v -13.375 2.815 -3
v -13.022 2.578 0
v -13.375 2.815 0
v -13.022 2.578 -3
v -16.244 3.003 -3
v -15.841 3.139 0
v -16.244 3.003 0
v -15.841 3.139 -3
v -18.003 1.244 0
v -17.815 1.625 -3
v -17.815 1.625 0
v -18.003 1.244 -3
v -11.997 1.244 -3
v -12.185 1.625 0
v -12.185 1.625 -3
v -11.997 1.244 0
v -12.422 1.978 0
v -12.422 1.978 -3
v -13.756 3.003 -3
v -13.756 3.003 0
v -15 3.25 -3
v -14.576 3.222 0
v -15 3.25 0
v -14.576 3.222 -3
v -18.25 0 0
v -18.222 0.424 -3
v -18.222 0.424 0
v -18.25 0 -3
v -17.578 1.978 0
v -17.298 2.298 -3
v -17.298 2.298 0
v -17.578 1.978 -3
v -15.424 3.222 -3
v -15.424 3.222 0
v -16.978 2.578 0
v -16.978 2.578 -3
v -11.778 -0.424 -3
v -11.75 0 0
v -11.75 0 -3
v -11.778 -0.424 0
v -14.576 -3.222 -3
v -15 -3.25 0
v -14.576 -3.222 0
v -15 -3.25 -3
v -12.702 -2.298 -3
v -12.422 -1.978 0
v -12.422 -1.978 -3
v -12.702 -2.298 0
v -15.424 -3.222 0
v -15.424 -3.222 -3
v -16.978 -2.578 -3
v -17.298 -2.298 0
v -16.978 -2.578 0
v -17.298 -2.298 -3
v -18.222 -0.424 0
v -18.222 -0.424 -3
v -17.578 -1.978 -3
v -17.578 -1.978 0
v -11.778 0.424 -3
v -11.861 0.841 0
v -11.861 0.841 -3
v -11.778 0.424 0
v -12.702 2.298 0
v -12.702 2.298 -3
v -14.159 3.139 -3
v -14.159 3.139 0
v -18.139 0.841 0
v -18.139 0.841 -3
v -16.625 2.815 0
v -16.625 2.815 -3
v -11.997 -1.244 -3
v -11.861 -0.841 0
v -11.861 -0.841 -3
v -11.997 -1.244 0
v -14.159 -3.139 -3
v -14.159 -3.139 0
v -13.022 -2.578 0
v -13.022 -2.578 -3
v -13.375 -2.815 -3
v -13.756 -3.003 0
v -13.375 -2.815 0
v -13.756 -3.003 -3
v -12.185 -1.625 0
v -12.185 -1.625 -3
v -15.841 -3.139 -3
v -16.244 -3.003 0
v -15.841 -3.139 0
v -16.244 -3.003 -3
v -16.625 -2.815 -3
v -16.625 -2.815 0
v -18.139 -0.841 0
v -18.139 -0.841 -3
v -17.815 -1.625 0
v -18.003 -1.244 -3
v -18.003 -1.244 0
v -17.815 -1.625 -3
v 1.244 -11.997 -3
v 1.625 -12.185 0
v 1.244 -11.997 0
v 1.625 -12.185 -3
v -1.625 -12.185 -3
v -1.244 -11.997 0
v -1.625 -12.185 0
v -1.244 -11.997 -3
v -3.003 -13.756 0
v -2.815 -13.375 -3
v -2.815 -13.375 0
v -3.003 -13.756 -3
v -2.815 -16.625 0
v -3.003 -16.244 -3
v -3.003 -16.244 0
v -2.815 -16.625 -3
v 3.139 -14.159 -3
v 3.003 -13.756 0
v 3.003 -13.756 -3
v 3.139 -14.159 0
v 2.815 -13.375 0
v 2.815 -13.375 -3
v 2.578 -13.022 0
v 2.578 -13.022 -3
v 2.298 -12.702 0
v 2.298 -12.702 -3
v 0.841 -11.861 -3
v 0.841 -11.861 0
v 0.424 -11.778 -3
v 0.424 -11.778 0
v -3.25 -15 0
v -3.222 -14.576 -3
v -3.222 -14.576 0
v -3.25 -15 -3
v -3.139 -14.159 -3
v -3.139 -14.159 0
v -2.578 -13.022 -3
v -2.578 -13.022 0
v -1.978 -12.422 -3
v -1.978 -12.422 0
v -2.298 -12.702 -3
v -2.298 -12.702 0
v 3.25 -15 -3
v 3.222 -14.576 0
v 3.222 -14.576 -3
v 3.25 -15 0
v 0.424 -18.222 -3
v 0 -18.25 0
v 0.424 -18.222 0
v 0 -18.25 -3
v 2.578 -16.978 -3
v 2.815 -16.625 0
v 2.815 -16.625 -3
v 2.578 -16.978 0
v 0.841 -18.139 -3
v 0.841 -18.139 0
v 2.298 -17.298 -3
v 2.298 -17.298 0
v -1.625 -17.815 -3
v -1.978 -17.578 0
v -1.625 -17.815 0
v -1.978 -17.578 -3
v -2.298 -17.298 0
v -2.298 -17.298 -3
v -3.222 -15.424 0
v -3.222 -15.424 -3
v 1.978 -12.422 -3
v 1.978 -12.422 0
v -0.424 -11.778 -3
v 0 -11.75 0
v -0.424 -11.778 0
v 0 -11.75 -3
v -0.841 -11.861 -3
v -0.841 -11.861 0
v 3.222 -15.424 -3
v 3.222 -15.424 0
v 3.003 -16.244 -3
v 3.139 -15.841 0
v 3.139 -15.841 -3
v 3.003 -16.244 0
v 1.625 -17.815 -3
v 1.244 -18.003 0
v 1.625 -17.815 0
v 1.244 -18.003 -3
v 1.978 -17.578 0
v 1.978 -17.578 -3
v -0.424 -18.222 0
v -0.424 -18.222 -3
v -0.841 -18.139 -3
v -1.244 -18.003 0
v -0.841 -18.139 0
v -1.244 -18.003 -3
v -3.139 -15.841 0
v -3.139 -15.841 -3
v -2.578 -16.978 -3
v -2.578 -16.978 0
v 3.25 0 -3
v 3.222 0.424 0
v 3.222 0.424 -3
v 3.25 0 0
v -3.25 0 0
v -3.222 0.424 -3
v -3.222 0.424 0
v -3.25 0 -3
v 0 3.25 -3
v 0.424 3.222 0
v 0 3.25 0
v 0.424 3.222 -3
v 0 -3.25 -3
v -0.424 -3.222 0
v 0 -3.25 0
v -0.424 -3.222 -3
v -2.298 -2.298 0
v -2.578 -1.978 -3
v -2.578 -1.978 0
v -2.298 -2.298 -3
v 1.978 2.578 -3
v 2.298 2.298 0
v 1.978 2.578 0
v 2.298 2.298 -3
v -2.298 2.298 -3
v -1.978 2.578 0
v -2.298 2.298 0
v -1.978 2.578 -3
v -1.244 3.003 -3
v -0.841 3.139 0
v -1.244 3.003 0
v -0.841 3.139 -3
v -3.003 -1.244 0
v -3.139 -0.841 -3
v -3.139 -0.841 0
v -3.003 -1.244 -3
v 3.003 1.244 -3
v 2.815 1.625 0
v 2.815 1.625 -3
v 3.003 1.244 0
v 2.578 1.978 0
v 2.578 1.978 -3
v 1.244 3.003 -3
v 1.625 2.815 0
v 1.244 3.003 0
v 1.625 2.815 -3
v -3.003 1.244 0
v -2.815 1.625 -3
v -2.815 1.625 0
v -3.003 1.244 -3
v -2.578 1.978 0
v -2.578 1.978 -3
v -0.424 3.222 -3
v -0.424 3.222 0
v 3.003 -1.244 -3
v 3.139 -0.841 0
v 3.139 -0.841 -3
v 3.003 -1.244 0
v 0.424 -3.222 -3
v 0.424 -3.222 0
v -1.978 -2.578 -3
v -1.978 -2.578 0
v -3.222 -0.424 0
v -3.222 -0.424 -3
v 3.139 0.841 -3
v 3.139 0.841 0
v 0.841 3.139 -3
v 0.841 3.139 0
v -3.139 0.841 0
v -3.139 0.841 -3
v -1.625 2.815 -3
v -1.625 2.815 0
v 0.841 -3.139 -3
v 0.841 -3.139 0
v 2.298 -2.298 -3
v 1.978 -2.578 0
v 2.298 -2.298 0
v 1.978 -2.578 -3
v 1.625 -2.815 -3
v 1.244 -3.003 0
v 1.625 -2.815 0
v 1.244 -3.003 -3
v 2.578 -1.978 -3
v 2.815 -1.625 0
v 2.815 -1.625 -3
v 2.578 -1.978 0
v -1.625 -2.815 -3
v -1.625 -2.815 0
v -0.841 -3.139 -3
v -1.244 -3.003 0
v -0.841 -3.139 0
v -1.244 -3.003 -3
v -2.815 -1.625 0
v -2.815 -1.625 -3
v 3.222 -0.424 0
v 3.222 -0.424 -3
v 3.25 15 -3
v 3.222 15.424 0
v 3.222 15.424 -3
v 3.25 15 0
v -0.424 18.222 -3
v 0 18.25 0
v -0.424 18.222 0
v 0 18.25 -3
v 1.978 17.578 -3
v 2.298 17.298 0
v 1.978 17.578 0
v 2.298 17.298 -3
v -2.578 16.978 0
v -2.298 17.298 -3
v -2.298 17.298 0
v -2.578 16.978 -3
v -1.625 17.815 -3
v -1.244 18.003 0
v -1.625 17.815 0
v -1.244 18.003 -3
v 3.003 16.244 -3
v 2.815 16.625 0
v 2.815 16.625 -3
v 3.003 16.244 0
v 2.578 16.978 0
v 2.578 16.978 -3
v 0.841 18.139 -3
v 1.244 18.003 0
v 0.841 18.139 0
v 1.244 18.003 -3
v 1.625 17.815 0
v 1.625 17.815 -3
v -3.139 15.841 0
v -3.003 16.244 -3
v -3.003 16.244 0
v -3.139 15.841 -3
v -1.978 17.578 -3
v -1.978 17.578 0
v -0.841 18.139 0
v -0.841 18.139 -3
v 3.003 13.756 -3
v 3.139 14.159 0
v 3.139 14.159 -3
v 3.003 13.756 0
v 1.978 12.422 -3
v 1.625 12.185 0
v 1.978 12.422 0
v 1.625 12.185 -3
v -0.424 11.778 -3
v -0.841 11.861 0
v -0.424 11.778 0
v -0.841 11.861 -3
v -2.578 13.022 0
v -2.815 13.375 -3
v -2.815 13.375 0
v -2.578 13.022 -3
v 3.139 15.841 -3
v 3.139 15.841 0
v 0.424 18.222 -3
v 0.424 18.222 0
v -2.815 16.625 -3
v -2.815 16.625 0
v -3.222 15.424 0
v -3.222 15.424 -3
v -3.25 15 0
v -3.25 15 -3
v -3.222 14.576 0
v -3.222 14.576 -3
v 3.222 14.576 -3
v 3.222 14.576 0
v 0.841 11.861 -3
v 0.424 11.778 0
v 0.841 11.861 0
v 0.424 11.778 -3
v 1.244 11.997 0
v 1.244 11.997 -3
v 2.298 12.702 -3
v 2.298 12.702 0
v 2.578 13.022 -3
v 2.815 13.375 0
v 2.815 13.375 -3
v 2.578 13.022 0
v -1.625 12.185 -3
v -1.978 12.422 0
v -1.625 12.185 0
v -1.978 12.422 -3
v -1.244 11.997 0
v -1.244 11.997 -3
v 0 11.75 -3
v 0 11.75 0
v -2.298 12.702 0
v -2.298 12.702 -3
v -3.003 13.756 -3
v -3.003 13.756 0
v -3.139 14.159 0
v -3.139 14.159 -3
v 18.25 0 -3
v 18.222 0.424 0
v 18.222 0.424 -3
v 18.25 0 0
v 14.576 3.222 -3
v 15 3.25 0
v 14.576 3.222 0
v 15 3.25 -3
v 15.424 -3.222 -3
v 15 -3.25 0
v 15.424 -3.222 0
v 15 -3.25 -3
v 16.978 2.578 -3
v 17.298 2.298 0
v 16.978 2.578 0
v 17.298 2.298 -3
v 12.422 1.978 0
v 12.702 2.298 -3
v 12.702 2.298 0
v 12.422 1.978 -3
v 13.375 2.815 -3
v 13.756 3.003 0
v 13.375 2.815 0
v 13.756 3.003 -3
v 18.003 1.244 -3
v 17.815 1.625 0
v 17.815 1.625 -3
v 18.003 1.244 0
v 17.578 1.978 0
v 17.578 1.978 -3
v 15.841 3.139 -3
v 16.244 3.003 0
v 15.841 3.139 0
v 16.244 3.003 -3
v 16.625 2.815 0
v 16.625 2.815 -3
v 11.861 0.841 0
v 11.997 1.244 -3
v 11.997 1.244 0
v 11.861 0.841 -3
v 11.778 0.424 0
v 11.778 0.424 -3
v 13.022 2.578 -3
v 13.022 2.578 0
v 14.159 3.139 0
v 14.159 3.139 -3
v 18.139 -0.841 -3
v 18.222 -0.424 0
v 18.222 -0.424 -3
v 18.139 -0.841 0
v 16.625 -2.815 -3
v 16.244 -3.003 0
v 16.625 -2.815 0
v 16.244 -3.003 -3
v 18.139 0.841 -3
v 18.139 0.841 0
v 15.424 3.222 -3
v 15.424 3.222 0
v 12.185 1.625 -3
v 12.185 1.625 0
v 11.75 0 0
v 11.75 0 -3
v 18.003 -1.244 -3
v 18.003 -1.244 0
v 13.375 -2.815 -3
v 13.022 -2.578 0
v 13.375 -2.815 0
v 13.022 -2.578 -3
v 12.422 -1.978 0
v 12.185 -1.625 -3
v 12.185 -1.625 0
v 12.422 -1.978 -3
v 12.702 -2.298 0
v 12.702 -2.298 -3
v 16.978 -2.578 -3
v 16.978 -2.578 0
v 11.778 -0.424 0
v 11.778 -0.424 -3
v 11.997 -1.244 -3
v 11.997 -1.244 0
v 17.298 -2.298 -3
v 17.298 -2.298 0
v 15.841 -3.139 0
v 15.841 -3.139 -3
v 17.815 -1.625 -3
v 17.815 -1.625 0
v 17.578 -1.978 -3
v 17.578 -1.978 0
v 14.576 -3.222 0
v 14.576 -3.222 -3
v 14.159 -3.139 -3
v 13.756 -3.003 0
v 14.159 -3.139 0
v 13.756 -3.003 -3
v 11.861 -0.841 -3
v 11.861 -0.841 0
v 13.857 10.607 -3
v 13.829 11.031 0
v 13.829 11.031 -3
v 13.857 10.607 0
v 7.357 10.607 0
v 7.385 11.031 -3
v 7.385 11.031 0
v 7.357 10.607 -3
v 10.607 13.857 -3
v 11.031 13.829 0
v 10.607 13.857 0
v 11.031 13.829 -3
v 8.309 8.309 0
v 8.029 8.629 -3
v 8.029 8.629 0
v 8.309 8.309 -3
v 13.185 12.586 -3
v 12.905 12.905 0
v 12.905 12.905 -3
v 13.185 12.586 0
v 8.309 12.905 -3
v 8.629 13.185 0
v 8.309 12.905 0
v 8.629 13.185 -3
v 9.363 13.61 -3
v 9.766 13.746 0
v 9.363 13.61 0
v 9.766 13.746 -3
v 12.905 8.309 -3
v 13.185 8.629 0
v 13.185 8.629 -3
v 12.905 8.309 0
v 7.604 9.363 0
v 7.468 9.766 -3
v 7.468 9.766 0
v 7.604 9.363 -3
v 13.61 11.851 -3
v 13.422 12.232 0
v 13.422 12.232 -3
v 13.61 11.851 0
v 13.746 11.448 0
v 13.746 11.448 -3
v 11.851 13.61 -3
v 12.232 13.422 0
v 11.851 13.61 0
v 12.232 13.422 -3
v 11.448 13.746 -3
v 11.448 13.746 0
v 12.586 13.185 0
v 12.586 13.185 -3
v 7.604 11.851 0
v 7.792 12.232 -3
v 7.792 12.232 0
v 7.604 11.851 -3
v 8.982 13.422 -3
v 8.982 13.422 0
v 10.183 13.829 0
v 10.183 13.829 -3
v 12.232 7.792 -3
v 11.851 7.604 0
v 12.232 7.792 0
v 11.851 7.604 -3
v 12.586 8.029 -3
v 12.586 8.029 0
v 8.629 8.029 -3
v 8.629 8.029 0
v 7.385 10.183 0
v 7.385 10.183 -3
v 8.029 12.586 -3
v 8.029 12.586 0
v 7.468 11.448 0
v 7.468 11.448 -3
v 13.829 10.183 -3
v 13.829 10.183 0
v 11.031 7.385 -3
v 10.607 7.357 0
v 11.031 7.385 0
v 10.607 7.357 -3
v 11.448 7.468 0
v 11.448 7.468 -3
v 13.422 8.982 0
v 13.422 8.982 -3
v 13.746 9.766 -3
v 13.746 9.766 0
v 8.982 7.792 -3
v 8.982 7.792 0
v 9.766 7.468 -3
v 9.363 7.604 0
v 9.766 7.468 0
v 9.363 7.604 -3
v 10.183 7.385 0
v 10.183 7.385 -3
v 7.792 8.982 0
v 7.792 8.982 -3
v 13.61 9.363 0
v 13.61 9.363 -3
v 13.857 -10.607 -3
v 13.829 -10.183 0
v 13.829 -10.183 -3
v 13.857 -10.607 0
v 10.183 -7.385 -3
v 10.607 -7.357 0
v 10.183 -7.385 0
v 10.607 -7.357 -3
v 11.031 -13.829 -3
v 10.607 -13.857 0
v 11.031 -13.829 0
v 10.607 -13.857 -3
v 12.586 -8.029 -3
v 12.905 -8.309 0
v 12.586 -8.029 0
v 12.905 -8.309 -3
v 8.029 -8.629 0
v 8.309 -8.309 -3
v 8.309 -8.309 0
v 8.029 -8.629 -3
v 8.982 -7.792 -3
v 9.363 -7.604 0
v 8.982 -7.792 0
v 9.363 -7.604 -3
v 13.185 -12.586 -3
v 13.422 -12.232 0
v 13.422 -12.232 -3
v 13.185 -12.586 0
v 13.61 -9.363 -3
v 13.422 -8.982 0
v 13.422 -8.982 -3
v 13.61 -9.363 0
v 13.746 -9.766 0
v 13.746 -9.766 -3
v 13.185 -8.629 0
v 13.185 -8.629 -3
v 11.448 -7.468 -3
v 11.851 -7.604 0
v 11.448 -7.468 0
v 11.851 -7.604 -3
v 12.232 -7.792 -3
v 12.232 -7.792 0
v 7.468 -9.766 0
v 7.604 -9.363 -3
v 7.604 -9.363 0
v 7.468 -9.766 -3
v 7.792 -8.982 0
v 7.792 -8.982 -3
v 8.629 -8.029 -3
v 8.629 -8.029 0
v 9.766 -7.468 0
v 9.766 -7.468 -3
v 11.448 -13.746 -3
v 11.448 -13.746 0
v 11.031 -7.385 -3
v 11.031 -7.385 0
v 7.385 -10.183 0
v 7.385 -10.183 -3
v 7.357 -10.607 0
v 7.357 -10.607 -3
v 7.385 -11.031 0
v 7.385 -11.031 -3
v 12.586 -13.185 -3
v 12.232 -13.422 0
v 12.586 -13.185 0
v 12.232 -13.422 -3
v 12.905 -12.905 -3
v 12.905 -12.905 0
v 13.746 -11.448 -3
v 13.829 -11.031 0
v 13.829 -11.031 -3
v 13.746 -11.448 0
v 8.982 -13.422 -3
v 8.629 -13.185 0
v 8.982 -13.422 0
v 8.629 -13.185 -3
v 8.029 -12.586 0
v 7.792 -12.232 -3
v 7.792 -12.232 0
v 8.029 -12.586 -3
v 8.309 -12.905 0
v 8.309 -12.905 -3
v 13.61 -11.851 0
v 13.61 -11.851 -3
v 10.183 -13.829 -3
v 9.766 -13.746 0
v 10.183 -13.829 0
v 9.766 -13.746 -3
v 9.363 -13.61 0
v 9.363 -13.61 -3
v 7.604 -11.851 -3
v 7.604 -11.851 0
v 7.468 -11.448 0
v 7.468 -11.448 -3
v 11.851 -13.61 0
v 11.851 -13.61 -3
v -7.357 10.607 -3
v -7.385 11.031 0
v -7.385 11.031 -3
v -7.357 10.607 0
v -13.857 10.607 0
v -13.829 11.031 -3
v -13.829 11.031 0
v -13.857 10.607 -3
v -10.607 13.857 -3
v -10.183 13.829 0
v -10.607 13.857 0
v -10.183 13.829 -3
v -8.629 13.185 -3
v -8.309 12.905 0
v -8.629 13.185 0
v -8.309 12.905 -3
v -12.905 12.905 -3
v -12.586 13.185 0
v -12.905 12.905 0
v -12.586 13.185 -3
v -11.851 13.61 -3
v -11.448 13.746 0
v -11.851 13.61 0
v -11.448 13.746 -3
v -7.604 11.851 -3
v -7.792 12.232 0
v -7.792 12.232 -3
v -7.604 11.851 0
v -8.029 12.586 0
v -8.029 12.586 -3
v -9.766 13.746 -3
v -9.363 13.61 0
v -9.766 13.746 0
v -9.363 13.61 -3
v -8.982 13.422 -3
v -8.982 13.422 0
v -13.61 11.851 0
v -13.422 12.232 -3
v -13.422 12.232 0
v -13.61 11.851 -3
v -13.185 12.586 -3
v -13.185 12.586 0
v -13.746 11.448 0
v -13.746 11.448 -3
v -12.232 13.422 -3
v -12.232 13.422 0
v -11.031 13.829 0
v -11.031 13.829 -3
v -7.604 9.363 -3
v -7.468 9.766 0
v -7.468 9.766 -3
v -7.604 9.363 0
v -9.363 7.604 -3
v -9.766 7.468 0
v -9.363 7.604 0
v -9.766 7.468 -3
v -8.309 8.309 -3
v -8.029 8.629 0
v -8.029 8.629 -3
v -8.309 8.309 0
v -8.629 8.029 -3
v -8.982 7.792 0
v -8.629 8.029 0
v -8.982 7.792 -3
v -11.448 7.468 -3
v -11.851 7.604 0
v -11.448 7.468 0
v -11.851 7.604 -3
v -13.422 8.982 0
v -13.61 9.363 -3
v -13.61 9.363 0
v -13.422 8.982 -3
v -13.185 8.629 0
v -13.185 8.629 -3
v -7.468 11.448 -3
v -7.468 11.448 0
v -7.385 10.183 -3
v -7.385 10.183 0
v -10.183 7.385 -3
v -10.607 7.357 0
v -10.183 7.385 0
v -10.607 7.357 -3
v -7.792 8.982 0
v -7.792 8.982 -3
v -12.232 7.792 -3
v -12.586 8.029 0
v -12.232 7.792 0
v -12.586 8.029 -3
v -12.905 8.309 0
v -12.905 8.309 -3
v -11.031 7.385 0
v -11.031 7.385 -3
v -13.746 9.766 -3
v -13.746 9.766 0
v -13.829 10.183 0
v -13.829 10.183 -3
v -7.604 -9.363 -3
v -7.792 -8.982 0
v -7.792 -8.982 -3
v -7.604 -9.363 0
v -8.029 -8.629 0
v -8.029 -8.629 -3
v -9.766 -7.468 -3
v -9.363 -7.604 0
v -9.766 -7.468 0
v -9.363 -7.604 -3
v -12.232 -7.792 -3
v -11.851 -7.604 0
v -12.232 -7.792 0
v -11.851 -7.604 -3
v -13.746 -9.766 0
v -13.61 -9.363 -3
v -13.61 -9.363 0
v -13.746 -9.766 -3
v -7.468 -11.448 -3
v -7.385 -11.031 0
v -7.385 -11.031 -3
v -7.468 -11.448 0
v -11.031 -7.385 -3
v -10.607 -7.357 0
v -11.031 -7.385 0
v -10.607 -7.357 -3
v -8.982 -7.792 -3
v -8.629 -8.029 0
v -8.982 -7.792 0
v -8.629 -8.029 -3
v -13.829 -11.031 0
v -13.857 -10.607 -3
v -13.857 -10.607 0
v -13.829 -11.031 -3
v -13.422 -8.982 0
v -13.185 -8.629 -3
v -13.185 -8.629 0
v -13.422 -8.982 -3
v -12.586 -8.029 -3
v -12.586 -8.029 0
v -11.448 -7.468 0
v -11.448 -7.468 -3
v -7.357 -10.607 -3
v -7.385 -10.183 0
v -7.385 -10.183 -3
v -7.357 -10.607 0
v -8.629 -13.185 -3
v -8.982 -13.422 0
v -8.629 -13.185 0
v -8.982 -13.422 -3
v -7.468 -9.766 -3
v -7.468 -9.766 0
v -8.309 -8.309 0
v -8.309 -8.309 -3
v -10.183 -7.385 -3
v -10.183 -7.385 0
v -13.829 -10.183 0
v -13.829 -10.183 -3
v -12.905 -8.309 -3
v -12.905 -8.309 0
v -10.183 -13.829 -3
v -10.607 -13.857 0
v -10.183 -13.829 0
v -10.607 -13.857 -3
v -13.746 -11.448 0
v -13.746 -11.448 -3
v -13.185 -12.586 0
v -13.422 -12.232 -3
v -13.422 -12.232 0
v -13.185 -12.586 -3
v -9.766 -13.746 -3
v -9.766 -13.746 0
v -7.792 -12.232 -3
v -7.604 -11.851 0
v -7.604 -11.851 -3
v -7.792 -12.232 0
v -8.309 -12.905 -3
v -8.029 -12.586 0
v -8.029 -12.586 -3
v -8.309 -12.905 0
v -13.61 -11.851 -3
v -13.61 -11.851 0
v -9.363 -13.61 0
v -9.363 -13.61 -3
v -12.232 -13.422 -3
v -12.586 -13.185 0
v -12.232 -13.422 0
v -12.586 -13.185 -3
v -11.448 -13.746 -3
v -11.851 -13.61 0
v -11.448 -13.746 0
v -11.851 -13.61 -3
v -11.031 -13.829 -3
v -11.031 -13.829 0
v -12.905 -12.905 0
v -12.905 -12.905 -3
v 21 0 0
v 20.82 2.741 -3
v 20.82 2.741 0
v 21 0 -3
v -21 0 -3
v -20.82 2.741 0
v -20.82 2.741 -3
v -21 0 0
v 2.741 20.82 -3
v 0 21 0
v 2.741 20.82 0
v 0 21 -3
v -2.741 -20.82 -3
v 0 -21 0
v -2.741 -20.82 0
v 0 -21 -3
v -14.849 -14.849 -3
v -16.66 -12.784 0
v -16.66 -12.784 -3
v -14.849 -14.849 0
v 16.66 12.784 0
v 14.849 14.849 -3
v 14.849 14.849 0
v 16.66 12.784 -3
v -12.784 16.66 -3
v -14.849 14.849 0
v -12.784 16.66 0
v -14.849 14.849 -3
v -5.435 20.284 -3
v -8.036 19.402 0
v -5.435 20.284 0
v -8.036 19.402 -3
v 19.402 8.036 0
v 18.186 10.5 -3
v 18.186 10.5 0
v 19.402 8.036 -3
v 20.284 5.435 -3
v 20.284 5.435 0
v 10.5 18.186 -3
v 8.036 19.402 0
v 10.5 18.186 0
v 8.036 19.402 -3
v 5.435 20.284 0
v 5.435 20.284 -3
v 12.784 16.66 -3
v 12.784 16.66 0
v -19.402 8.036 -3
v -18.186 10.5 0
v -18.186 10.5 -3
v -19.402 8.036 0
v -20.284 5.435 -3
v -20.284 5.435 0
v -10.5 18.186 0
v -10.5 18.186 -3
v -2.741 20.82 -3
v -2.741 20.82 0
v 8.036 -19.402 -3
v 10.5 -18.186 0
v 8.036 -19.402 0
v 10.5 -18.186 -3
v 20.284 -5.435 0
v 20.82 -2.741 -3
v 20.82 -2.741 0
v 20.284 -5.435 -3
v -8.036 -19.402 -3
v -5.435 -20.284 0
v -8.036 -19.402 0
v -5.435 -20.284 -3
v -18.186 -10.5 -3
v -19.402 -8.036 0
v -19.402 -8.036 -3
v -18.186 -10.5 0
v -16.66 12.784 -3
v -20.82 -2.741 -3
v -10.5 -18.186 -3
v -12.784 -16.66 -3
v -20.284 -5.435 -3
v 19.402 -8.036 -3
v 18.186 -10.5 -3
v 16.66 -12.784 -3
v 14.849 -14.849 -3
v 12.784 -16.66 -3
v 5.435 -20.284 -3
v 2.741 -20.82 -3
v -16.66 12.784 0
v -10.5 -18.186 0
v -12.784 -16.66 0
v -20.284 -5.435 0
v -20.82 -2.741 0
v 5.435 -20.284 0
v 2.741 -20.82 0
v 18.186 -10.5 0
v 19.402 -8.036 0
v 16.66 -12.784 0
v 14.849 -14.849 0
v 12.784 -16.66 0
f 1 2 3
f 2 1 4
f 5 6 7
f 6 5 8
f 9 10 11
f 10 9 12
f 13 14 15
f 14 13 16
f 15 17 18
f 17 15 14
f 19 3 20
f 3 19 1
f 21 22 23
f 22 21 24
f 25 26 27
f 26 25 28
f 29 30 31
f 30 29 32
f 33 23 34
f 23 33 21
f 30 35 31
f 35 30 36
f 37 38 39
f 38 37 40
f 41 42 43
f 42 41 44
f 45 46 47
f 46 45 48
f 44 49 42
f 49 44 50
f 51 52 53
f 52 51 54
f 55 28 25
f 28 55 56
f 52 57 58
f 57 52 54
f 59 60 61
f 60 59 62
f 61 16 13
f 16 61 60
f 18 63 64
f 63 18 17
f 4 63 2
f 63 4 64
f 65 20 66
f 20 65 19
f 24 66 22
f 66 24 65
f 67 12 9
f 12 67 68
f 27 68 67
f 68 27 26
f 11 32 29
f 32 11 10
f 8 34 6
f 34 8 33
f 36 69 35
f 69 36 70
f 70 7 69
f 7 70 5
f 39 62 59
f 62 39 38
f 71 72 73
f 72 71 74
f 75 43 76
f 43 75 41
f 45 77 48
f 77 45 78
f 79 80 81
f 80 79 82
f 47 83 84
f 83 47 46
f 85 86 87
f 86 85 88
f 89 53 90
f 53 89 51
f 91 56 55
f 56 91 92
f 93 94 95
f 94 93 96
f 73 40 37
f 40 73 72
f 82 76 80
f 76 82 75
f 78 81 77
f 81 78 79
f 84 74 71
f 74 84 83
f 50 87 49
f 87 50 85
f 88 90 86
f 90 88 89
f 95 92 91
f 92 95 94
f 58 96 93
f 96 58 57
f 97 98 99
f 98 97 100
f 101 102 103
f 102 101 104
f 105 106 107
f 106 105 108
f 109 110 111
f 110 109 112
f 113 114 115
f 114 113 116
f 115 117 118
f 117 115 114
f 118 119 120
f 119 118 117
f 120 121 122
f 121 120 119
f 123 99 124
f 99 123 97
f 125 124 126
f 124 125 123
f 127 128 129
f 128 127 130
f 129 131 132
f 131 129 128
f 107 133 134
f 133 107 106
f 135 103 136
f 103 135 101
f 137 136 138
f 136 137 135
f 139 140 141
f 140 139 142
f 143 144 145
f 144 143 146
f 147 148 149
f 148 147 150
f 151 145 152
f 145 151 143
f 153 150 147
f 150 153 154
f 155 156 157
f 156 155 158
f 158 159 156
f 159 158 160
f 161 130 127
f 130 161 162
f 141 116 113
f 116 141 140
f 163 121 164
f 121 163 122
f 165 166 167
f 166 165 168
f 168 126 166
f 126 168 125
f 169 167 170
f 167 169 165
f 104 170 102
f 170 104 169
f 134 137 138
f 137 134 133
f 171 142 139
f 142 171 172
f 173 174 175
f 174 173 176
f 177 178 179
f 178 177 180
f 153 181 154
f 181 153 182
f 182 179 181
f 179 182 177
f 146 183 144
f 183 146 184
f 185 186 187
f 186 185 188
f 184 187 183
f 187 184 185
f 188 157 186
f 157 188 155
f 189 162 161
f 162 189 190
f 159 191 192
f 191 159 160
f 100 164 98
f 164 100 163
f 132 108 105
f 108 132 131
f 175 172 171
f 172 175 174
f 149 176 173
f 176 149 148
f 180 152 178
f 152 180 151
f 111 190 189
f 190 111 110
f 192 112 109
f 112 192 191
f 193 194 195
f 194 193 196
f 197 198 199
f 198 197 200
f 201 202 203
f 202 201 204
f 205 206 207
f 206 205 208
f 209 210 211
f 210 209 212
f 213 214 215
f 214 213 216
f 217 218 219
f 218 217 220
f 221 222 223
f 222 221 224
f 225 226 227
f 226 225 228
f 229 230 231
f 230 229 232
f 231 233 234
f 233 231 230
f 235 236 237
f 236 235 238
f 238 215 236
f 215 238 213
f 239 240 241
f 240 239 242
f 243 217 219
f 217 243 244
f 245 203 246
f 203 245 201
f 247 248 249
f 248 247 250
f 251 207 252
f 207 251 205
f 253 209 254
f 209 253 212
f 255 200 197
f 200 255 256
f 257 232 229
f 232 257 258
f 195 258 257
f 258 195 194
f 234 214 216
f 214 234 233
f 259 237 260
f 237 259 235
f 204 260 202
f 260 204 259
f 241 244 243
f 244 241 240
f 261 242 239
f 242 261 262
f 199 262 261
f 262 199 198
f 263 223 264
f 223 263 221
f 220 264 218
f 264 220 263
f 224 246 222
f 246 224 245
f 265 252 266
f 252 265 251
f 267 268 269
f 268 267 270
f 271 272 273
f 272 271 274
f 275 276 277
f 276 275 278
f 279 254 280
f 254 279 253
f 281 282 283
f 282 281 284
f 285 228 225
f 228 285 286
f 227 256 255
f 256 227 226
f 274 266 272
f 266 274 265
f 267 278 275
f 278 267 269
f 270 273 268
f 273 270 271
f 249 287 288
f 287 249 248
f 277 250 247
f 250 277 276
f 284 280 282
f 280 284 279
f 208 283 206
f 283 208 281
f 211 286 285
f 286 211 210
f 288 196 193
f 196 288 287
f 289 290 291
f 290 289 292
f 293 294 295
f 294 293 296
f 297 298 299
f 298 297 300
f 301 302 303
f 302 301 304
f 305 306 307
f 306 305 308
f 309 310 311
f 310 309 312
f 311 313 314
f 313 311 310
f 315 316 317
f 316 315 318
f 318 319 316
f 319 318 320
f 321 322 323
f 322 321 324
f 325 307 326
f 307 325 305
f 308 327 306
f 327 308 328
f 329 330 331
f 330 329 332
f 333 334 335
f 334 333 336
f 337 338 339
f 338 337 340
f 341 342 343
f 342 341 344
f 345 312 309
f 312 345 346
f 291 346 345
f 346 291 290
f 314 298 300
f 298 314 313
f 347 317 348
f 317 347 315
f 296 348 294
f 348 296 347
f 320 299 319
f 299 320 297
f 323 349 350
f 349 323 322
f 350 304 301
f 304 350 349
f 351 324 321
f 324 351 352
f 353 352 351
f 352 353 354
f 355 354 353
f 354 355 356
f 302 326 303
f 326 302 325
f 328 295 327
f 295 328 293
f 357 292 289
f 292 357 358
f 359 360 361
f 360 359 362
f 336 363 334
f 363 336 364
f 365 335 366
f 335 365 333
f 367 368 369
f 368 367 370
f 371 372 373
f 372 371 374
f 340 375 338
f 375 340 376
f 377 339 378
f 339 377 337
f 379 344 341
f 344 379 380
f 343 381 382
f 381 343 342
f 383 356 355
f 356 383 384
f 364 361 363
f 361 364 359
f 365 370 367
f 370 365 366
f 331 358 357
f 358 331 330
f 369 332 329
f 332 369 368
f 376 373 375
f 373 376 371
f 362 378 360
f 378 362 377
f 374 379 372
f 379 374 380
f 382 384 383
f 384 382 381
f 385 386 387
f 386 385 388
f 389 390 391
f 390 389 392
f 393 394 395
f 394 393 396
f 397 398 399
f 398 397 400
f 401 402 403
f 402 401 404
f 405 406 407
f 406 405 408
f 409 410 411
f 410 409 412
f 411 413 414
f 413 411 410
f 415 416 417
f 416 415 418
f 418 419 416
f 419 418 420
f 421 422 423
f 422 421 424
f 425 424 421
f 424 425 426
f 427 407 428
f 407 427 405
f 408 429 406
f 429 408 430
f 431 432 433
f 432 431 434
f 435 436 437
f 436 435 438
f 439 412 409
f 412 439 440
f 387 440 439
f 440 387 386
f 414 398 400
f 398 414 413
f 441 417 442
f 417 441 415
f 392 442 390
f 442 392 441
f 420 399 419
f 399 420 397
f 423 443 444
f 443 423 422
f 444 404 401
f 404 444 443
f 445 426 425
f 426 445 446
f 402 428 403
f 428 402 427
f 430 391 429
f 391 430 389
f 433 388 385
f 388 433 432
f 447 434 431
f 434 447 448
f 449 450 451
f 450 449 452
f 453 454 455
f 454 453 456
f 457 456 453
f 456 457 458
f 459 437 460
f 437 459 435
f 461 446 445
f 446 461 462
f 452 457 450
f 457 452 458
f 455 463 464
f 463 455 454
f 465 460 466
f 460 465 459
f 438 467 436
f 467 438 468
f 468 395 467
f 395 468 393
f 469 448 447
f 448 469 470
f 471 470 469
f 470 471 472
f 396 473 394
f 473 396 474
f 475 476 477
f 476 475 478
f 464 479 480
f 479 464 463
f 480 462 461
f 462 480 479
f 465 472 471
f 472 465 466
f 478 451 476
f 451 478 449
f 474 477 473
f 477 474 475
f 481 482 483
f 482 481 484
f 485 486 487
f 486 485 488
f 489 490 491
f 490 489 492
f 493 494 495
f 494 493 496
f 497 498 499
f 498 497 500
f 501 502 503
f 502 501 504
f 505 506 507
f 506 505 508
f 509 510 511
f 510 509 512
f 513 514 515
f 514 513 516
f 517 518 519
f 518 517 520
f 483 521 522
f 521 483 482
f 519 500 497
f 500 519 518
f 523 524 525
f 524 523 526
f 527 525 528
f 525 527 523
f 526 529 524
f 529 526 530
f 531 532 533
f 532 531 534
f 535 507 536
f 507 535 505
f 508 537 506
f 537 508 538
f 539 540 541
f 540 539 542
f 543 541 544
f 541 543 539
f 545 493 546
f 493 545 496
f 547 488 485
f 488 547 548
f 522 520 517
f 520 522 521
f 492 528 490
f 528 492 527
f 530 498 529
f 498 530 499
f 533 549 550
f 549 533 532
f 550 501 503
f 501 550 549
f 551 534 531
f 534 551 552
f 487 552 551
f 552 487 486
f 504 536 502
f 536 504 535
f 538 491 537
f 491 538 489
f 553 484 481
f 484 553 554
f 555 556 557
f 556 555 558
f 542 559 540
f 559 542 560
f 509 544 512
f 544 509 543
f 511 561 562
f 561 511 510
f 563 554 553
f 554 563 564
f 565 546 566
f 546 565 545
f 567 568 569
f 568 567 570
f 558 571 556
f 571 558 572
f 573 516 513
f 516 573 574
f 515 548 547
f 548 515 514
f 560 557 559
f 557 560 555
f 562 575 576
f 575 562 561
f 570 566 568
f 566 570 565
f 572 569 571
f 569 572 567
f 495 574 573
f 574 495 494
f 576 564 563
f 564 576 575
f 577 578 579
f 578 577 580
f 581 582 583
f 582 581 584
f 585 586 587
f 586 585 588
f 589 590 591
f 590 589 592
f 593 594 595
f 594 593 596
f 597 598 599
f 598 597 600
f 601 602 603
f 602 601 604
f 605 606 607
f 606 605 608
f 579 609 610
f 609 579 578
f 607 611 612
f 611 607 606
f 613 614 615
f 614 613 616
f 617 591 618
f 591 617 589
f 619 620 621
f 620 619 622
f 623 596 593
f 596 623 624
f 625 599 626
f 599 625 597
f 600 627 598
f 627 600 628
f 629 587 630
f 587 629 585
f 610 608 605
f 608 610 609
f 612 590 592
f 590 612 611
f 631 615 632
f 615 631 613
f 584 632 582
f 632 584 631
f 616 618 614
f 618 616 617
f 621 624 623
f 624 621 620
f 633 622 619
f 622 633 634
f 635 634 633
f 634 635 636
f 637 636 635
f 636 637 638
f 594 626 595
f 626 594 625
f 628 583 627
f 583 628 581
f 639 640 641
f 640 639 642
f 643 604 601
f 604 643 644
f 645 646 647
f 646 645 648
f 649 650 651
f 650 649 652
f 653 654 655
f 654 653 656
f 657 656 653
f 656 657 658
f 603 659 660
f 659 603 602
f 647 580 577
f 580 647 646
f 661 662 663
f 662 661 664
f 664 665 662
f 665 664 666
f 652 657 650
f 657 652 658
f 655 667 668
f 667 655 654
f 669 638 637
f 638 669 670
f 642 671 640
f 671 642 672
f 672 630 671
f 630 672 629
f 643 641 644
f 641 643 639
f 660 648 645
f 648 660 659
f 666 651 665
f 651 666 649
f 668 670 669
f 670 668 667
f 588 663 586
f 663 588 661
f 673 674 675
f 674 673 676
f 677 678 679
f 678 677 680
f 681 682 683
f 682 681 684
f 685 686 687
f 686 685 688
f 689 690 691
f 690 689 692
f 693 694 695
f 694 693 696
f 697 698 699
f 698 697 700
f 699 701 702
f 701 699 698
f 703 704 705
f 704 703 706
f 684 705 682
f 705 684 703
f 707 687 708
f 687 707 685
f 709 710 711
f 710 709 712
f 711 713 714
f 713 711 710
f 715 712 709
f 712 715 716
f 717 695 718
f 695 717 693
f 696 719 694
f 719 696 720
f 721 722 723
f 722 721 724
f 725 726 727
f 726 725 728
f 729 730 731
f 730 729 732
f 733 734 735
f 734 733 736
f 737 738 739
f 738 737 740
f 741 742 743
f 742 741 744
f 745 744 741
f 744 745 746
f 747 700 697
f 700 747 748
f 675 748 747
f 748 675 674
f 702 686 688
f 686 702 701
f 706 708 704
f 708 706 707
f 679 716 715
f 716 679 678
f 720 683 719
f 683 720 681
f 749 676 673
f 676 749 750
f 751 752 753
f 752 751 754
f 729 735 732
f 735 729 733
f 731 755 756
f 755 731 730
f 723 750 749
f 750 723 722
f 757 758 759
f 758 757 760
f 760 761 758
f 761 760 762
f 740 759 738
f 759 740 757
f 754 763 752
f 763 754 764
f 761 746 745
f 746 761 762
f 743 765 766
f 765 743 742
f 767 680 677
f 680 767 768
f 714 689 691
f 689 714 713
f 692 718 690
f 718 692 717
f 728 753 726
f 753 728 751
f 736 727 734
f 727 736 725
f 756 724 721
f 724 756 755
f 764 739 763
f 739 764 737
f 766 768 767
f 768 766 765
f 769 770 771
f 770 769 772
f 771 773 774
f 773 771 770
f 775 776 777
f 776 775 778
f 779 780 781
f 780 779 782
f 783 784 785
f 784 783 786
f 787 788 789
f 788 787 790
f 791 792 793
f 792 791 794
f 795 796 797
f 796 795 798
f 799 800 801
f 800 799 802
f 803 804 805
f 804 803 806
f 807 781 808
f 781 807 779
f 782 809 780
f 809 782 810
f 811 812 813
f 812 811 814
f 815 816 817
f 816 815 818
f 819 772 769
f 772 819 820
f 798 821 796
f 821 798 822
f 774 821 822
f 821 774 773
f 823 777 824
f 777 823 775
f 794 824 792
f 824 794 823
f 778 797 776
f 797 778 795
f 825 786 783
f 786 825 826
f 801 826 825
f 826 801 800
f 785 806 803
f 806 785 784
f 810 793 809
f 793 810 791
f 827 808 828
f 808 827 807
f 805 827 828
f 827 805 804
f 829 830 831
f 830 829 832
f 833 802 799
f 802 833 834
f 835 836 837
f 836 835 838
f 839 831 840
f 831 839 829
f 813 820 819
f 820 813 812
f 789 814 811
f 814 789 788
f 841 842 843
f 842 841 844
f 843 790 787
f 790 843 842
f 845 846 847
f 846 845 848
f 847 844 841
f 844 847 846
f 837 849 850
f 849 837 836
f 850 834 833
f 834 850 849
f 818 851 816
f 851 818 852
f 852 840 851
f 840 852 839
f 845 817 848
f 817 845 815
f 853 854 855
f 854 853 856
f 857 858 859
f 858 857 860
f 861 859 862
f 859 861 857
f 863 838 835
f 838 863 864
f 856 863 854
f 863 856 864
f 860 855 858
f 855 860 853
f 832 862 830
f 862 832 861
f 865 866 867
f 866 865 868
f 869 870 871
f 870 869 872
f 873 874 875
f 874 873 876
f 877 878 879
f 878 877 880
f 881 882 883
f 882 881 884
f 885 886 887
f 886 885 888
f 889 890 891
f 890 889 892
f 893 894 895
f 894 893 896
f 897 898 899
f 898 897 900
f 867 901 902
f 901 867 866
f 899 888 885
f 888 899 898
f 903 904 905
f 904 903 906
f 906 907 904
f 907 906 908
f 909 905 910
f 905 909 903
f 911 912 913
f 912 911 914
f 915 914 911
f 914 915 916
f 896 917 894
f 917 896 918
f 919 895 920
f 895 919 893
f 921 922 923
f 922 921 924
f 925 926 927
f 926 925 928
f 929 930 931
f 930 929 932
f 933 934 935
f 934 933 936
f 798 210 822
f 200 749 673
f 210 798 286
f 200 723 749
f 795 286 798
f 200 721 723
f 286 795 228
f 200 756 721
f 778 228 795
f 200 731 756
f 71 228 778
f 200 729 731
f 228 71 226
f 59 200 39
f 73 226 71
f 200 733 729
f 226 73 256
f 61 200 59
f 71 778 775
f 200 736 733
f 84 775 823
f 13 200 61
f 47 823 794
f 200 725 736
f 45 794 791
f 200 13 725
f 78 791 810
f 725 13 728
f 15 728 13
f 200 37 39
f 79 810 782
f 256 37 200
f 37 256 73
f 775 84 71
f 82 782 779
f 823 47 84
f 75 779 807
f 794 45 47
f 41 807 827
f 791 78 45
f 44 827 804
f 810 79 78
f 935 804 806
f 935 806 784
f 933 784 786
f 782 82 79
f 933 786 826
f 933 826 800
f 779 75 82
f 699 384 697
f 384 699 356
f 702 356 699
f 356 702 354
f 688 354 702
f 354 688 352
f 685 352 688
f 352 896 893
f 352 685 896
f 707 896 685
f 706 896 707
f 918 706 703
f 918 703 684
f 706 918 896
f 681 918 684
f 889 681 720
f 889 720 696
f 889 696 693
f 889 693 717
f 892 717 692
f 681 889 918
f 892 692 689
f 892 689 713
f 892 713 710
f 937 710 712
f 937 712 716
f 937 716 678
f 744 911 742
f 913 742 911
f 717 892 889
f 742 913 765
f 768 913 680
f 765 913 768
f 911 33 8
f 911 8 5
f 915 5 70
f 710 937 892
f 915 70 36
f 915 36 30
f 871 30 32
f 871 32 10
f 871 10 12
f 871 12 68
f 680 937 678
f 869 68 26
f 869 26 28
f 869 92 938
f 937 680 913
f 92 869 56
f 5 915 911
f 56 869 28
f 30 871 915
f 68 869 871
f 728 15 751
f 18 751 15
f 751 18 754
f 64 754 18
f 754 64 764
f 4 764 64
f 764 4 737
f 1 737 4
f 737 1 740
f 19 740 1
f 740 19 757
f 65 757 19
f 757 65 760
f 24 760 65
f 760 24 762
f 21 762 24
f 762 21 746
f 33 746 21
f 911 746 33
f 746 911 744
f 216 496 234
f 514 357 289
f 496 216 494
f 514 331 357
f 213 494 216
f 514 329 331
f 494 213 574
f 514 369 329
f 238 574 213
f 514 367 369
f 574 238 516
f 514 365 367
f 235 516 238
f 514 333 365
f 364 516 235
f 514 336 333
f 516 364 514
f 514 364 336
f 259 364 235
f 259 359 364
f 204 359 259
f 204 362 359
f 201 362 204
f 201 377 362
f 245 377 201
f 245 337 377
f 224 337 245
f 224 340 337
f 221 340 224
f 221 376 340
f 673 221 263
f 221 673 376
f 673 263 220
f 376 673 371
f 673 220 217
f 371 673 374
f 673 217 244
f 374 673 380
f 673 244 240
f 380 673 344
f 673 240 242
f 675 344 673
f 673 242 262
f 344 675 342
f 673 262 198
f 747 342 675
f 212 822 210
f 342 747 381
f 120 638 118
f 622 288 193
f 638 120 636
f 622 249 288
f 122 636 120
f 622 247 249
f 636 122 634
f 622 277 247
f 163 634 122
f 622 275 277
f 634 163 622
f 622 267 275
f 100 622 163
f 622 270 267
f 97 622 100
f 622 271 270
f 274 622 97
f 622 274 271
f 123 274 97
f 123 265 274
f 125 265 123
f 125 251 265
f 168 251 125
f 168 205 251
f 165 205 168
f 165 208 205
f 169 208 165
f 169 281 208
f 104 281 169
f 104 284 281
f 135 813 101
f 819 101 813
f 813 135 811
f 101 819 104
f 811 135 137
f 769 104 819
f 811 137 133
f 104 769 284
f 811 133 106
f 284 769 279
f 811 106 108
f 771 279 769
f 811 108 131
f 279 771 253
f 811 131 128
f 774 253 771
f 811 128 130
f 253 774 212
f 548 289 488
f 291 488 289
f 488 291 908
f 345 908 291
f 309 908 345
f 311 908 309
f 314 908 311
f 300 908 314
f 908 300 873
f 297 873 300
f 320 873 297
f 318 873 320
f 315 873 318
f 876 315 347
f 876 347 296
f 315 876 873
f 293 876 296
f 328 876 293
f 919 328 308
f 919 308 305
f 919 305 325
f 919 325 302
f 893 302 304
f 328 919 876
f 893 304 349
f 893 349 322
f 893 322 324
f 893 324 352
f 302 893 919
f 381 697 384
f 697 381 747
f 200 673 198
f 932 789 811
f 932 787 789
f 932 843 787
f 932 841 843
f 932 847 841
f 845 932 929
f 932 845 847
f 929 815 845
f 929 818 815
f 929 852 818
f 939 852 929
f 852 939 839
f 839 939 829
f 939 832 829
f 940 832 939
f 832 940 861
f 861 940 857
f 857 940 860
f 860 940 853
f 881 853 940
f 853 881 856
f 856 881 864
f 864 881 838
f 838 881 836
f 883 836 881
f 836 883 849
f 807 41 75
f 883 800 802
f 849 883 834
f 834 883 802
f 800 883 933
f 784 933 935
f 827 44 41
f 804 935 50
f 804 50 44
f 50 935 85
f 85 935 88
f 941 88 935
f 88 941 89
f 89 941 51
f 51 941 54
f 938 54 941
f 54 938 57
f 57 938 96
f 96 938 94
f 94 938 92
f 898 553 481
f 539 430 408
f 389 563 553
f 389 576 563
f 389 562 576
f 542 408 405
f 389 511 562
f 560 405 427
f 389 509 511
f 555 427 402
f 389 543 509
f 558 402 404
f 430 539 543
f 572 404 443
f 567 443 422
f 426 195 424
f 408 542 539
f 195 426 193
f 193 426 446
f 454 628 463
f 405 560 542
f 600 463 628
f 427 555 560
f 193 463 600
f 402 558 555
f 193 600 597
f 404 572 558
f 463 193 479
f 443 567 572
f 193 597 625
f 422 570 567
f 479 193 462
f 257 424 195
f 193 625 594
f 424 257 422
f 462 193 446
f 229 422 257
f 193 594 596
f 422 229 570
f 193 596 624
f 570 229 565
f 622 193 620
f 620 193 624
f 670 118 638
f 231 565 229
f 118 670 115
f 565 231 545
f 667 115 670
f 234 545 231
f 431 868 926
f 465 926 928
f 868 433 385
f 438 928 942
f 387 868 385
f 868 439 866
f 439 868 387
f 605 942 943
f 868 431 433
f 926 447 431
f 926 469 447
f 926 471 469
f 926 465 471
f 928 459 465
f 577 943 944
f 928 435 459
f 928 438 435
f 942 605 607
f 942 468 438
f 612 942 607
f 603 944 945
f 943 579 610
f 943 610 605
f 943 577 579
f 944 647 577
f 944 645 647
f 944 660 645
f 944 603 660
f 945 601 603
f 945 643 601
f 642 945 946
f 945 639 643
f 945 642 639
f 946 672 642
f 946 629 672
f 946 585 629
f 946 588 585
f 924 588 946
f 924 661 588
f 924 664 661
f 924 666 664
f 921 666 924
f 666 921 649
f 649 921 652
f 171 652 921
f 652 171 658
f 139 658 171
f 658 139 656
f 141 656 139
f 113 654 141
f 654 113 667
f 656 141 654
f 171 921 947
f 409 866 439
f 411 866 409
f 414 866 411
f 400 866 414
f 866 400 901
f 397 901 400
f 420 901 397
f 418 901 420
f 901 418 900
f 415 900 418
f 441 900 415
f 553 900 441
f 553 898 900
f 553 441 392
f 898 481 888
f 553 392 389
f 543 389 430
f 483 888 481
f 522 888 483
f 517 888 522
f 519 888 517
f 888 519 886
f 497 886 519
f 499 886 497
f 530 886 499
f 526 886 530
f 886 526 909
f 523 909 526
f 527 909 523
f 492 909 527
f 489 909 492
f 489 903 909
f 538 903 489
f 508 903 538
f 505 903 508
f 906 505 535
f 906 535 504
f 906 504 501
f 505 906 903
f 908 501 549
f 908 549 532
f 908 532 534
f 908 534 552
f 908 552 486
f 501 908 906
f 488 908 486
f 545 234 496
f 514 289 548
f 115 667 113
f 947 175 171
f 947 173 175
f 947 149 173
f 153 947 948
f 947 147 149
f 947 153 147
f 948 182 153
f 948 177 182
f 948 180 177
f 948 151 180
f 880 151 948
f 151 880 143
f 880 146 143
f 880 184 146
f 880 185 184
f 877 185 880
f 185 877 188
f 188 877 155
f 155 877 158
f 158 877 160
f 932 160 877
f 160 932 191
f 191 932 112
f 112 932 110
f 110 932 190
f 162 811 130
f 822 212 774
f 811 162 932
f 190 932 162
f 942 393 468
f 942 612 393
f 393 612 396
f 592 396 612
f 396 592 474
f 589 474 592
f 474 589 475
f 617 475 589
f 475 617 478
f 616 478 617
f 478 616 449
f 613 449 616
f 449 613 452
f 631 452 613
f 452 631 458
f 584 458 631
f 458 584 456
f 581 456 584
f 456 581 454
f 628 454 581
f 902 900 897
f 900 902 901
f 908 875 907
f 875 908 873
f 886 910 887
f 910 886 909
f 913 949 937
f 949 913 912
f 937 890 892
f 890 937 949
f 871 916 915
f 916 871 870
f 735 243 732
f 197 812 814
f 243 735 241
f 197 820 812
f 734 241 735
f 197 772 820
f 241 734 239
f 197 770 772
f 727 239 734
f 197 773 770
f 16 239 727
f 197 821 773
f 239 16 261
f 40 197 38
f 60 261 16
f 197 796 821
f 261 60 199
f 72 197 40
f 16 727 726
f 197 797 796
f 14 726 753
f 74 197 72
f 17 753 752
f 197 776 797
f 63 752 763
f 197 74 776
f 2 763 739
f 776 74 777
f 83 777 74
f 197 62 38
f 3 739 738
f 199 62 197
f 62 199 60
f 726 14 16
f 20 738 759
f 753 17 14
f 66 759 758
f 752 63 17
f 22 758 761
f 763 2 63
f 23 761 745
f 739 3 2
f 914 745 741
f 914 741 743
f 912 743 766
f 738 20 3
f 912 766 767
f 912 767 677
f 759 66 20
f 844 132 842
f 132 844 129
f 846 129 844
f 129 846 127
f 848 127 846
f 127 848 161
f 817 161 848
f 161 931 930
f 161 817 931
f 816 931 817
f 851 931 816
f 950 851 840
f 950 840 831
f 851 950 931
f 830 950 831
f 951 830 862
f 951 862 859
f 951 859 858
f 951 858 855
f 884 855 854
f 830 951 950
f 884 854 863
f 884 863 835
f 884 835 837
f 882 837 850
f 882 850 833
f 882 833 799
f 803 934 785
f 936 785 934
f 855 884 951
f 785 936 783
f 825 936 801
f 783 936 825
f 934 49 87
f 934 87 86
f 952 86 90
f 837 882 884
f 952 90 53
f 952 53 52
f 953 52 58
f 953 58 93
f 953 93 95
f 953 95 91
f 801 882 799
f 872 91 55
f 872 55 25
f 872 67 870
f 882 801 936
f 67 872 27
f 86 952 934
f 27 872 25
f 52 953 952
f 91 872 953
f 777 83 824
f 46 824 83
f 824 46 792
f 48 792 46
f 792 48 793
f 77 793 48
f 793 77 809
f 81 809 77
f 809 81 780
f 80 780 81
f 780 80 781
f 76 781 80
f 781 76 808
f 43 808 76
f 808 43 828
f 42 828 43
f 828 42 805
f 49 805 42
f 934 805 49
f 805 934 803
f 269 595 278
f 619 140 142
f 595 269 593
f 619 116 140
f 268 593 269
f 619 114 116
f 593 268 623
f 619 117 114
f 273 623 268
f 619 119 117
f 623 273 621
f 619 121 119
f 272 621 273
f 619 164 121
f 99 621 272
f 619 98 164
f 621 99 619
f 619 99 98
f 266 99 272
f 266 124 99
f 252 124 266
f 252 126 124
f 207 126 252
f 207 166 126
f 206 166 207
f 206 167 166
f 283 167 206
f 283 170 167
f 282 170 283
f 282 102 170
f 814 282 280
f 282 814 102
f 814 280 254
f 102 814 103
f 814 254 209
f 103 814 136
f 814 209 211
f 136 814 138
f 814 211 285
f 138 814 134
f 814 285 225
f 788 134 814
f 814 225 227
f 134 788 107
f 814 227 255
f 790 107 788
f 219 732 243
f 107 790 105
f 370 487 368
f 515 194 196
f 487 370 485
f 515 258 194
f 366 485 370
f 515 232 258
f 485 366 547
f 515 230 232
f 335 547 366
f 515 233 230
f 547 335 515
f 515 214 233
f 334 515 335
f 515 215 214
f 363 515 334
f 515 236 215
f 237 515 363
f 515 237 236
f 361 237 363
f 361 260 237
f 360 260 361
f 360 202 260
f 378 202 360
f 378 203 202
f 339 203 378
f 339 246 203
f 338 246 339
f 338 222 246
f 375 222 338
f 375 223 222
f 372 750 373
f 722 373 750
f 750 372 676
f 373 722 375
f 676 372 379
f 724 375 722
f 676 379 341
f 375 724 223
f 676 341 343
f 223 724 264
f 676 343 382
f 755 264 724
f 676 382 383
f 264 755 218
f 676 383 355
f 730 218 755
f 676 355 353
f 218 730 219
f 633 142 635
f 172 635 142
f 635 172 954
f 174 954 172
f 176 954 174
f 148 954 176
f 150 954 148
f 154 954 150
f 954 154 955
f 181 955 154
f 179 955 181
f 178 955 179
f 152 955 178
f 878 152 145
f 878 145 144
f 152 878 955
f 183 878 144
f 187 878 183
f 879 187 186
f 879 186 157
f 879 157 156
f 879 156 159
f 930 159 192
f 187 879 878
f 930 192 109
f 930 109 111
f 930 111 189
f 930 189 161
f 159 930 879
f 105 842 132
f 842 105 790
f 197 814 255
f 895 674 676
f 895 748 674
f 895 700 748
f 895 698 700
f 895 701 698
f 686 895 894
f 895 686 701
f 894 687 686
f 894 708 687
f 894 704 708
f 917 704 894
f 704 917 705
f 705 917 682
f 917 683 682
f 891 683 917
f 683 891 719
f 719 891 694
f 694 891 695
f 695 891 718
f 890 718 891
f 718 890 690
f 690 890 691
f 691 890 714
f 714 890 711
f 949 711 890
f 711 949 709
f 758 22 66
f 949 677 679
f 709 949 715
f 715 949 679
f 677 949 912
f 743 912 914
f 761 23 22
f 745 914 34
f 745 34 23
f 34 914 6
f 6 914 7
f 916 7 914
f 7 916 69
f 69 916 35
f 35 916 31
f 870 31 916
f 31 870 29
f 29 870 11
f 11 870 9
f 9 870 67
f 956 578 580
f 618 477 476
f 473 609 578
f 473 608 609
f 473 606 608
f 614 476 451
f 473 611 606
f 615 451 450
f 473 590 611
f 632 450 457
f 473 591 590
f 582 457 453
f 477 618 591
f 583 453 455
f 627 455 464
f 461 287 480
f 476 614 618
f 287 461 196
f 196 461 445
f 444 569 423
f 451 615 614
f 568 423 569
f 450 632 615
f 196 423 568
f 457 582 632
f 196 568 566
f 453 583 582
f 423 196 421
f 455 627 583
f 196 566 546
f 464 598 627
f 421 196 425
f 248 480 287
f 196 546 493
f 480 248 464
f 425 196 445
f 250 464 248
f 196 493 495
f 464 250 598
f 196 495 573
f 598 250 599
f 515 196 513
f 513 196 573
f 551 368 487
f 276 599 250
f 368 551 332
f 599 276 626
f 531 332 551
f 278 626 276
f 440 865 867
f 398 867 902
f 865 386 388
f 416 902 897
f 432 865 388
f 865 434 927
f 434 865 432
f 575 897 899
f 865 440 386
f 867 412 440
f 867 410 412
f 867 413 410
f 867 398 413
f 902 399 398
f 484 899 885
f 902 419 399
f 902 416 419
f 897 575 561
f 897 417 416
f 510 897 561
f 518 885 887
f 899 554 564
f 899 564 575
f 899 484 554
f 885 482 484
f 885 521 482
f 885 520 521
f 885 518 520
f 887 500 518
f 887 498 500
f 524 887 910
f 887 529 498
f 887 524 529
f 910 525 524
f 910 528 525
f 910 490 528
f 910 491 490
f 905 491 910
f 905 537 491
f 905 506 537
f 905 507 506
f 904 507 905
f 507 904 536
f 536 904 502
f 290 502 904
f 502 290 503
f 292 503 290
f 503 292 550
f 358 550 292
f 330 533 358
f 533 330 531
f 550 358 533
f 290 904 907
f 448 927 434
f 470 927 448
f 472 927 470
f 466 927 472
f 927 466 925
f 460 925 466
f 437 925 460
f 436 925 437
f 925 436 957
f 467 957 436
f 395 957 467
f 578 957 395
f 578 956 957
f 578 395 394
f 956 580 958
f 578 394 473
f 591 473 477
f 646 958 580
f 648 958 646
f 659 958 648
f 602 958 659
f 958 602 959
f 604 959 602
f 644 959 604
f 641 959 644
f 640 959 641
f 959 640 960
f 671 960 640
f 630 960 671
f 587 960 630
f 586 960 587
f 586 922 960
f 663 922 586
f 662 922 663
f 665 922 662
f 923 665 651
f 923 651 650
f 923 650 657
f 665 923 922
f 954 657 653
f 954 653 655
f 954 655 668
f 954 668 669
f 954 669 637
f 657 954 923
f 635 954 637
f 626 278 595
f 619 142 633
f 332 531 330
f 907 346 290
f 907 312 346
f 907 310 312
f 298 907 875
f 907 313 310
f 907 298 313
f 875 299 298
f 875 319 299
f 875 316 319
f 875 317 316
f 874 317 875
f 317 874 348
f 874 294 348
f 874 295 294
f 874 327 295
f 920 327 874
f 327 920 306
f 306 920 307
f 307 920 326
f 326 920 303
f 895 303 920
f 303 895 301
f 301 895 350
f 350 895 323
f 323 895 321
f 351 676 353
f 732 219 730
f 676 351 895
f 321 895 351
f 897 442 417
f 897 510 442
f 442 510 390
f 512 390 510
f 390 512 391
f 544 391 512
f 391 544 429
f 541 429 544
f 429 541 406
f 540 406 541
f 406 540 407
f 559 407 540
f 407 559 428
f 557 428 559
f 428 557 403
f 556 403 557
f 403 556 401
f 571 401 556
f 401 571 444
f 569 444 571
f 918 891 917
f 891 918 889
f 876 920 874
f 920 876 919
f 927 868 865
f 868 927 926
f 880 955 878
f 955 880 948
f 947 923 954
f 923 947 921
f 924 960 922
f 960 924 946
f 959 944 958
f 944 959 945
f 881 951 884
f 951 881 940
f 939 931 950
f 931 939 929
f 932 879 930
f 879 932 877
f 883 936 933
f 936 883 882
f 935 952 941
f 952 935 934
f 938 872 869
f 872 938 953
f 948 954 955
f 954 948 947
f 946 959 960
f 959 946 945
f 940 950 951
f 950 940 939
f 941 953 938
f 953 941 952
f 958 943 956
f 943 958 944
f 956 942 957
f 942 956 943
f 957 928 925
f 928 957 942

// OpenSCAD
$fn = 48;


difference() {
	union() {
		color(alpha = 1.0000000000, c = "Gold") {
			translate(v = [0, 0, 0]) {
				rotate(a = [0, 0, 0]) {
					translate(v = [0, 0, -1.5000000000]) {
						cylinder(center = true, h = 3, r = 21.0000000000);
					}
				}
			}
		}
	}
	union() {
		color(alpha = 1.0000000000, c = "Gold") {
			translate(v = [-15.0000000000, 0.0000000000, 0]) {
				rotate(a = [0, 0, 0]) {
					translate(v = [0, 0, -250]) {
						cylinder(h = 500, r = 3.2500000000);
					}
				}
			}
		}
		color(alpha = 1.0000000000, c = "Gold") {
			translate(v = [0.0000000000, -15.0000000000, 0]) {
				rotate(a = [0, 0, 0]) {
					translate(v = [0, 0, -250]) {
						cylinder(h = 500, r = 3.2500000000);
					}
				}
			}
		}
		color(alpha = 1.0000000000, c = "Gold") {
			translate(v = [0.0000000000, 0.0000000000, 0]) {
				rotate(a = [0, 0, 0]) {
					translate(v = [0, 0, -250]) {
						cylinder(h = 500, r = 3.2500000000);
					}
				}
			}
		}
		color(alpha = 1.0000000000, c = "Gold") {
			translate(v = [0.0000000000, 15.0000000000, 0]) {
				rotate(a = [0, 0, 0]) {
					translate(v = [0, 0, -250]) {
						cylinder(h = 500, r = 3.2500000000);
					}
				}
			}
		}
		color(alpha = 1.0000000000, c = "Gold") {
			translate(v = [15.0000000000, 0.0000000000, 0]) {
				rotate(a = [0, 0, 0]) {
					translate(v = [0, 0, -250]) {
						cylinder(h = 500, r = 3.2500000000);
					}
				}
			}
		}
		color(alpha = 1.0000000000, c = "Gold") {
			translate(v = [10.6070000000, 10.6070000000, 0]) {
				rotate(a = [0, 0, 0]) {
					translate(v = [0, 0, -250]) {
						cylinder(h = 500, r = 3.2500000000);
					}
				}
			}
		}
		color(alpha = 1.0000000000, c = "Gold") {
			translate(v = [10.6070000000, -10.6070000000, 0]) {
				rotate(a = [0, 0, 0]) {
					translate(v = [0, 0, -250]) {
						cylinder(h = 500, r = 3.2500000000);
					}
				}
			}
		}
		color(alpha = 1.0000000000, c = "Gold") {
			translate(v = [-10.6070000000, 10.6070000000, 0]) {
				rotate(a = [0, 0, 0]) {
					translate(v = [0, 0, -250]) {
						cylinder(h = 500, r = 3.2500000000);
					}
				}
			}
		}
		color(alpha = 1.0000000000, c = "Gold") {
			translate(v = [-10.6070000000, -10.6070000000, 0]) {
				rotate(a = [0, 0, 0]) {
					translate(v = [0, 0, -250]) {
						cylinder(h = 500, r = 3.2500000000);
					}
				}
			}
		}
	}
}
